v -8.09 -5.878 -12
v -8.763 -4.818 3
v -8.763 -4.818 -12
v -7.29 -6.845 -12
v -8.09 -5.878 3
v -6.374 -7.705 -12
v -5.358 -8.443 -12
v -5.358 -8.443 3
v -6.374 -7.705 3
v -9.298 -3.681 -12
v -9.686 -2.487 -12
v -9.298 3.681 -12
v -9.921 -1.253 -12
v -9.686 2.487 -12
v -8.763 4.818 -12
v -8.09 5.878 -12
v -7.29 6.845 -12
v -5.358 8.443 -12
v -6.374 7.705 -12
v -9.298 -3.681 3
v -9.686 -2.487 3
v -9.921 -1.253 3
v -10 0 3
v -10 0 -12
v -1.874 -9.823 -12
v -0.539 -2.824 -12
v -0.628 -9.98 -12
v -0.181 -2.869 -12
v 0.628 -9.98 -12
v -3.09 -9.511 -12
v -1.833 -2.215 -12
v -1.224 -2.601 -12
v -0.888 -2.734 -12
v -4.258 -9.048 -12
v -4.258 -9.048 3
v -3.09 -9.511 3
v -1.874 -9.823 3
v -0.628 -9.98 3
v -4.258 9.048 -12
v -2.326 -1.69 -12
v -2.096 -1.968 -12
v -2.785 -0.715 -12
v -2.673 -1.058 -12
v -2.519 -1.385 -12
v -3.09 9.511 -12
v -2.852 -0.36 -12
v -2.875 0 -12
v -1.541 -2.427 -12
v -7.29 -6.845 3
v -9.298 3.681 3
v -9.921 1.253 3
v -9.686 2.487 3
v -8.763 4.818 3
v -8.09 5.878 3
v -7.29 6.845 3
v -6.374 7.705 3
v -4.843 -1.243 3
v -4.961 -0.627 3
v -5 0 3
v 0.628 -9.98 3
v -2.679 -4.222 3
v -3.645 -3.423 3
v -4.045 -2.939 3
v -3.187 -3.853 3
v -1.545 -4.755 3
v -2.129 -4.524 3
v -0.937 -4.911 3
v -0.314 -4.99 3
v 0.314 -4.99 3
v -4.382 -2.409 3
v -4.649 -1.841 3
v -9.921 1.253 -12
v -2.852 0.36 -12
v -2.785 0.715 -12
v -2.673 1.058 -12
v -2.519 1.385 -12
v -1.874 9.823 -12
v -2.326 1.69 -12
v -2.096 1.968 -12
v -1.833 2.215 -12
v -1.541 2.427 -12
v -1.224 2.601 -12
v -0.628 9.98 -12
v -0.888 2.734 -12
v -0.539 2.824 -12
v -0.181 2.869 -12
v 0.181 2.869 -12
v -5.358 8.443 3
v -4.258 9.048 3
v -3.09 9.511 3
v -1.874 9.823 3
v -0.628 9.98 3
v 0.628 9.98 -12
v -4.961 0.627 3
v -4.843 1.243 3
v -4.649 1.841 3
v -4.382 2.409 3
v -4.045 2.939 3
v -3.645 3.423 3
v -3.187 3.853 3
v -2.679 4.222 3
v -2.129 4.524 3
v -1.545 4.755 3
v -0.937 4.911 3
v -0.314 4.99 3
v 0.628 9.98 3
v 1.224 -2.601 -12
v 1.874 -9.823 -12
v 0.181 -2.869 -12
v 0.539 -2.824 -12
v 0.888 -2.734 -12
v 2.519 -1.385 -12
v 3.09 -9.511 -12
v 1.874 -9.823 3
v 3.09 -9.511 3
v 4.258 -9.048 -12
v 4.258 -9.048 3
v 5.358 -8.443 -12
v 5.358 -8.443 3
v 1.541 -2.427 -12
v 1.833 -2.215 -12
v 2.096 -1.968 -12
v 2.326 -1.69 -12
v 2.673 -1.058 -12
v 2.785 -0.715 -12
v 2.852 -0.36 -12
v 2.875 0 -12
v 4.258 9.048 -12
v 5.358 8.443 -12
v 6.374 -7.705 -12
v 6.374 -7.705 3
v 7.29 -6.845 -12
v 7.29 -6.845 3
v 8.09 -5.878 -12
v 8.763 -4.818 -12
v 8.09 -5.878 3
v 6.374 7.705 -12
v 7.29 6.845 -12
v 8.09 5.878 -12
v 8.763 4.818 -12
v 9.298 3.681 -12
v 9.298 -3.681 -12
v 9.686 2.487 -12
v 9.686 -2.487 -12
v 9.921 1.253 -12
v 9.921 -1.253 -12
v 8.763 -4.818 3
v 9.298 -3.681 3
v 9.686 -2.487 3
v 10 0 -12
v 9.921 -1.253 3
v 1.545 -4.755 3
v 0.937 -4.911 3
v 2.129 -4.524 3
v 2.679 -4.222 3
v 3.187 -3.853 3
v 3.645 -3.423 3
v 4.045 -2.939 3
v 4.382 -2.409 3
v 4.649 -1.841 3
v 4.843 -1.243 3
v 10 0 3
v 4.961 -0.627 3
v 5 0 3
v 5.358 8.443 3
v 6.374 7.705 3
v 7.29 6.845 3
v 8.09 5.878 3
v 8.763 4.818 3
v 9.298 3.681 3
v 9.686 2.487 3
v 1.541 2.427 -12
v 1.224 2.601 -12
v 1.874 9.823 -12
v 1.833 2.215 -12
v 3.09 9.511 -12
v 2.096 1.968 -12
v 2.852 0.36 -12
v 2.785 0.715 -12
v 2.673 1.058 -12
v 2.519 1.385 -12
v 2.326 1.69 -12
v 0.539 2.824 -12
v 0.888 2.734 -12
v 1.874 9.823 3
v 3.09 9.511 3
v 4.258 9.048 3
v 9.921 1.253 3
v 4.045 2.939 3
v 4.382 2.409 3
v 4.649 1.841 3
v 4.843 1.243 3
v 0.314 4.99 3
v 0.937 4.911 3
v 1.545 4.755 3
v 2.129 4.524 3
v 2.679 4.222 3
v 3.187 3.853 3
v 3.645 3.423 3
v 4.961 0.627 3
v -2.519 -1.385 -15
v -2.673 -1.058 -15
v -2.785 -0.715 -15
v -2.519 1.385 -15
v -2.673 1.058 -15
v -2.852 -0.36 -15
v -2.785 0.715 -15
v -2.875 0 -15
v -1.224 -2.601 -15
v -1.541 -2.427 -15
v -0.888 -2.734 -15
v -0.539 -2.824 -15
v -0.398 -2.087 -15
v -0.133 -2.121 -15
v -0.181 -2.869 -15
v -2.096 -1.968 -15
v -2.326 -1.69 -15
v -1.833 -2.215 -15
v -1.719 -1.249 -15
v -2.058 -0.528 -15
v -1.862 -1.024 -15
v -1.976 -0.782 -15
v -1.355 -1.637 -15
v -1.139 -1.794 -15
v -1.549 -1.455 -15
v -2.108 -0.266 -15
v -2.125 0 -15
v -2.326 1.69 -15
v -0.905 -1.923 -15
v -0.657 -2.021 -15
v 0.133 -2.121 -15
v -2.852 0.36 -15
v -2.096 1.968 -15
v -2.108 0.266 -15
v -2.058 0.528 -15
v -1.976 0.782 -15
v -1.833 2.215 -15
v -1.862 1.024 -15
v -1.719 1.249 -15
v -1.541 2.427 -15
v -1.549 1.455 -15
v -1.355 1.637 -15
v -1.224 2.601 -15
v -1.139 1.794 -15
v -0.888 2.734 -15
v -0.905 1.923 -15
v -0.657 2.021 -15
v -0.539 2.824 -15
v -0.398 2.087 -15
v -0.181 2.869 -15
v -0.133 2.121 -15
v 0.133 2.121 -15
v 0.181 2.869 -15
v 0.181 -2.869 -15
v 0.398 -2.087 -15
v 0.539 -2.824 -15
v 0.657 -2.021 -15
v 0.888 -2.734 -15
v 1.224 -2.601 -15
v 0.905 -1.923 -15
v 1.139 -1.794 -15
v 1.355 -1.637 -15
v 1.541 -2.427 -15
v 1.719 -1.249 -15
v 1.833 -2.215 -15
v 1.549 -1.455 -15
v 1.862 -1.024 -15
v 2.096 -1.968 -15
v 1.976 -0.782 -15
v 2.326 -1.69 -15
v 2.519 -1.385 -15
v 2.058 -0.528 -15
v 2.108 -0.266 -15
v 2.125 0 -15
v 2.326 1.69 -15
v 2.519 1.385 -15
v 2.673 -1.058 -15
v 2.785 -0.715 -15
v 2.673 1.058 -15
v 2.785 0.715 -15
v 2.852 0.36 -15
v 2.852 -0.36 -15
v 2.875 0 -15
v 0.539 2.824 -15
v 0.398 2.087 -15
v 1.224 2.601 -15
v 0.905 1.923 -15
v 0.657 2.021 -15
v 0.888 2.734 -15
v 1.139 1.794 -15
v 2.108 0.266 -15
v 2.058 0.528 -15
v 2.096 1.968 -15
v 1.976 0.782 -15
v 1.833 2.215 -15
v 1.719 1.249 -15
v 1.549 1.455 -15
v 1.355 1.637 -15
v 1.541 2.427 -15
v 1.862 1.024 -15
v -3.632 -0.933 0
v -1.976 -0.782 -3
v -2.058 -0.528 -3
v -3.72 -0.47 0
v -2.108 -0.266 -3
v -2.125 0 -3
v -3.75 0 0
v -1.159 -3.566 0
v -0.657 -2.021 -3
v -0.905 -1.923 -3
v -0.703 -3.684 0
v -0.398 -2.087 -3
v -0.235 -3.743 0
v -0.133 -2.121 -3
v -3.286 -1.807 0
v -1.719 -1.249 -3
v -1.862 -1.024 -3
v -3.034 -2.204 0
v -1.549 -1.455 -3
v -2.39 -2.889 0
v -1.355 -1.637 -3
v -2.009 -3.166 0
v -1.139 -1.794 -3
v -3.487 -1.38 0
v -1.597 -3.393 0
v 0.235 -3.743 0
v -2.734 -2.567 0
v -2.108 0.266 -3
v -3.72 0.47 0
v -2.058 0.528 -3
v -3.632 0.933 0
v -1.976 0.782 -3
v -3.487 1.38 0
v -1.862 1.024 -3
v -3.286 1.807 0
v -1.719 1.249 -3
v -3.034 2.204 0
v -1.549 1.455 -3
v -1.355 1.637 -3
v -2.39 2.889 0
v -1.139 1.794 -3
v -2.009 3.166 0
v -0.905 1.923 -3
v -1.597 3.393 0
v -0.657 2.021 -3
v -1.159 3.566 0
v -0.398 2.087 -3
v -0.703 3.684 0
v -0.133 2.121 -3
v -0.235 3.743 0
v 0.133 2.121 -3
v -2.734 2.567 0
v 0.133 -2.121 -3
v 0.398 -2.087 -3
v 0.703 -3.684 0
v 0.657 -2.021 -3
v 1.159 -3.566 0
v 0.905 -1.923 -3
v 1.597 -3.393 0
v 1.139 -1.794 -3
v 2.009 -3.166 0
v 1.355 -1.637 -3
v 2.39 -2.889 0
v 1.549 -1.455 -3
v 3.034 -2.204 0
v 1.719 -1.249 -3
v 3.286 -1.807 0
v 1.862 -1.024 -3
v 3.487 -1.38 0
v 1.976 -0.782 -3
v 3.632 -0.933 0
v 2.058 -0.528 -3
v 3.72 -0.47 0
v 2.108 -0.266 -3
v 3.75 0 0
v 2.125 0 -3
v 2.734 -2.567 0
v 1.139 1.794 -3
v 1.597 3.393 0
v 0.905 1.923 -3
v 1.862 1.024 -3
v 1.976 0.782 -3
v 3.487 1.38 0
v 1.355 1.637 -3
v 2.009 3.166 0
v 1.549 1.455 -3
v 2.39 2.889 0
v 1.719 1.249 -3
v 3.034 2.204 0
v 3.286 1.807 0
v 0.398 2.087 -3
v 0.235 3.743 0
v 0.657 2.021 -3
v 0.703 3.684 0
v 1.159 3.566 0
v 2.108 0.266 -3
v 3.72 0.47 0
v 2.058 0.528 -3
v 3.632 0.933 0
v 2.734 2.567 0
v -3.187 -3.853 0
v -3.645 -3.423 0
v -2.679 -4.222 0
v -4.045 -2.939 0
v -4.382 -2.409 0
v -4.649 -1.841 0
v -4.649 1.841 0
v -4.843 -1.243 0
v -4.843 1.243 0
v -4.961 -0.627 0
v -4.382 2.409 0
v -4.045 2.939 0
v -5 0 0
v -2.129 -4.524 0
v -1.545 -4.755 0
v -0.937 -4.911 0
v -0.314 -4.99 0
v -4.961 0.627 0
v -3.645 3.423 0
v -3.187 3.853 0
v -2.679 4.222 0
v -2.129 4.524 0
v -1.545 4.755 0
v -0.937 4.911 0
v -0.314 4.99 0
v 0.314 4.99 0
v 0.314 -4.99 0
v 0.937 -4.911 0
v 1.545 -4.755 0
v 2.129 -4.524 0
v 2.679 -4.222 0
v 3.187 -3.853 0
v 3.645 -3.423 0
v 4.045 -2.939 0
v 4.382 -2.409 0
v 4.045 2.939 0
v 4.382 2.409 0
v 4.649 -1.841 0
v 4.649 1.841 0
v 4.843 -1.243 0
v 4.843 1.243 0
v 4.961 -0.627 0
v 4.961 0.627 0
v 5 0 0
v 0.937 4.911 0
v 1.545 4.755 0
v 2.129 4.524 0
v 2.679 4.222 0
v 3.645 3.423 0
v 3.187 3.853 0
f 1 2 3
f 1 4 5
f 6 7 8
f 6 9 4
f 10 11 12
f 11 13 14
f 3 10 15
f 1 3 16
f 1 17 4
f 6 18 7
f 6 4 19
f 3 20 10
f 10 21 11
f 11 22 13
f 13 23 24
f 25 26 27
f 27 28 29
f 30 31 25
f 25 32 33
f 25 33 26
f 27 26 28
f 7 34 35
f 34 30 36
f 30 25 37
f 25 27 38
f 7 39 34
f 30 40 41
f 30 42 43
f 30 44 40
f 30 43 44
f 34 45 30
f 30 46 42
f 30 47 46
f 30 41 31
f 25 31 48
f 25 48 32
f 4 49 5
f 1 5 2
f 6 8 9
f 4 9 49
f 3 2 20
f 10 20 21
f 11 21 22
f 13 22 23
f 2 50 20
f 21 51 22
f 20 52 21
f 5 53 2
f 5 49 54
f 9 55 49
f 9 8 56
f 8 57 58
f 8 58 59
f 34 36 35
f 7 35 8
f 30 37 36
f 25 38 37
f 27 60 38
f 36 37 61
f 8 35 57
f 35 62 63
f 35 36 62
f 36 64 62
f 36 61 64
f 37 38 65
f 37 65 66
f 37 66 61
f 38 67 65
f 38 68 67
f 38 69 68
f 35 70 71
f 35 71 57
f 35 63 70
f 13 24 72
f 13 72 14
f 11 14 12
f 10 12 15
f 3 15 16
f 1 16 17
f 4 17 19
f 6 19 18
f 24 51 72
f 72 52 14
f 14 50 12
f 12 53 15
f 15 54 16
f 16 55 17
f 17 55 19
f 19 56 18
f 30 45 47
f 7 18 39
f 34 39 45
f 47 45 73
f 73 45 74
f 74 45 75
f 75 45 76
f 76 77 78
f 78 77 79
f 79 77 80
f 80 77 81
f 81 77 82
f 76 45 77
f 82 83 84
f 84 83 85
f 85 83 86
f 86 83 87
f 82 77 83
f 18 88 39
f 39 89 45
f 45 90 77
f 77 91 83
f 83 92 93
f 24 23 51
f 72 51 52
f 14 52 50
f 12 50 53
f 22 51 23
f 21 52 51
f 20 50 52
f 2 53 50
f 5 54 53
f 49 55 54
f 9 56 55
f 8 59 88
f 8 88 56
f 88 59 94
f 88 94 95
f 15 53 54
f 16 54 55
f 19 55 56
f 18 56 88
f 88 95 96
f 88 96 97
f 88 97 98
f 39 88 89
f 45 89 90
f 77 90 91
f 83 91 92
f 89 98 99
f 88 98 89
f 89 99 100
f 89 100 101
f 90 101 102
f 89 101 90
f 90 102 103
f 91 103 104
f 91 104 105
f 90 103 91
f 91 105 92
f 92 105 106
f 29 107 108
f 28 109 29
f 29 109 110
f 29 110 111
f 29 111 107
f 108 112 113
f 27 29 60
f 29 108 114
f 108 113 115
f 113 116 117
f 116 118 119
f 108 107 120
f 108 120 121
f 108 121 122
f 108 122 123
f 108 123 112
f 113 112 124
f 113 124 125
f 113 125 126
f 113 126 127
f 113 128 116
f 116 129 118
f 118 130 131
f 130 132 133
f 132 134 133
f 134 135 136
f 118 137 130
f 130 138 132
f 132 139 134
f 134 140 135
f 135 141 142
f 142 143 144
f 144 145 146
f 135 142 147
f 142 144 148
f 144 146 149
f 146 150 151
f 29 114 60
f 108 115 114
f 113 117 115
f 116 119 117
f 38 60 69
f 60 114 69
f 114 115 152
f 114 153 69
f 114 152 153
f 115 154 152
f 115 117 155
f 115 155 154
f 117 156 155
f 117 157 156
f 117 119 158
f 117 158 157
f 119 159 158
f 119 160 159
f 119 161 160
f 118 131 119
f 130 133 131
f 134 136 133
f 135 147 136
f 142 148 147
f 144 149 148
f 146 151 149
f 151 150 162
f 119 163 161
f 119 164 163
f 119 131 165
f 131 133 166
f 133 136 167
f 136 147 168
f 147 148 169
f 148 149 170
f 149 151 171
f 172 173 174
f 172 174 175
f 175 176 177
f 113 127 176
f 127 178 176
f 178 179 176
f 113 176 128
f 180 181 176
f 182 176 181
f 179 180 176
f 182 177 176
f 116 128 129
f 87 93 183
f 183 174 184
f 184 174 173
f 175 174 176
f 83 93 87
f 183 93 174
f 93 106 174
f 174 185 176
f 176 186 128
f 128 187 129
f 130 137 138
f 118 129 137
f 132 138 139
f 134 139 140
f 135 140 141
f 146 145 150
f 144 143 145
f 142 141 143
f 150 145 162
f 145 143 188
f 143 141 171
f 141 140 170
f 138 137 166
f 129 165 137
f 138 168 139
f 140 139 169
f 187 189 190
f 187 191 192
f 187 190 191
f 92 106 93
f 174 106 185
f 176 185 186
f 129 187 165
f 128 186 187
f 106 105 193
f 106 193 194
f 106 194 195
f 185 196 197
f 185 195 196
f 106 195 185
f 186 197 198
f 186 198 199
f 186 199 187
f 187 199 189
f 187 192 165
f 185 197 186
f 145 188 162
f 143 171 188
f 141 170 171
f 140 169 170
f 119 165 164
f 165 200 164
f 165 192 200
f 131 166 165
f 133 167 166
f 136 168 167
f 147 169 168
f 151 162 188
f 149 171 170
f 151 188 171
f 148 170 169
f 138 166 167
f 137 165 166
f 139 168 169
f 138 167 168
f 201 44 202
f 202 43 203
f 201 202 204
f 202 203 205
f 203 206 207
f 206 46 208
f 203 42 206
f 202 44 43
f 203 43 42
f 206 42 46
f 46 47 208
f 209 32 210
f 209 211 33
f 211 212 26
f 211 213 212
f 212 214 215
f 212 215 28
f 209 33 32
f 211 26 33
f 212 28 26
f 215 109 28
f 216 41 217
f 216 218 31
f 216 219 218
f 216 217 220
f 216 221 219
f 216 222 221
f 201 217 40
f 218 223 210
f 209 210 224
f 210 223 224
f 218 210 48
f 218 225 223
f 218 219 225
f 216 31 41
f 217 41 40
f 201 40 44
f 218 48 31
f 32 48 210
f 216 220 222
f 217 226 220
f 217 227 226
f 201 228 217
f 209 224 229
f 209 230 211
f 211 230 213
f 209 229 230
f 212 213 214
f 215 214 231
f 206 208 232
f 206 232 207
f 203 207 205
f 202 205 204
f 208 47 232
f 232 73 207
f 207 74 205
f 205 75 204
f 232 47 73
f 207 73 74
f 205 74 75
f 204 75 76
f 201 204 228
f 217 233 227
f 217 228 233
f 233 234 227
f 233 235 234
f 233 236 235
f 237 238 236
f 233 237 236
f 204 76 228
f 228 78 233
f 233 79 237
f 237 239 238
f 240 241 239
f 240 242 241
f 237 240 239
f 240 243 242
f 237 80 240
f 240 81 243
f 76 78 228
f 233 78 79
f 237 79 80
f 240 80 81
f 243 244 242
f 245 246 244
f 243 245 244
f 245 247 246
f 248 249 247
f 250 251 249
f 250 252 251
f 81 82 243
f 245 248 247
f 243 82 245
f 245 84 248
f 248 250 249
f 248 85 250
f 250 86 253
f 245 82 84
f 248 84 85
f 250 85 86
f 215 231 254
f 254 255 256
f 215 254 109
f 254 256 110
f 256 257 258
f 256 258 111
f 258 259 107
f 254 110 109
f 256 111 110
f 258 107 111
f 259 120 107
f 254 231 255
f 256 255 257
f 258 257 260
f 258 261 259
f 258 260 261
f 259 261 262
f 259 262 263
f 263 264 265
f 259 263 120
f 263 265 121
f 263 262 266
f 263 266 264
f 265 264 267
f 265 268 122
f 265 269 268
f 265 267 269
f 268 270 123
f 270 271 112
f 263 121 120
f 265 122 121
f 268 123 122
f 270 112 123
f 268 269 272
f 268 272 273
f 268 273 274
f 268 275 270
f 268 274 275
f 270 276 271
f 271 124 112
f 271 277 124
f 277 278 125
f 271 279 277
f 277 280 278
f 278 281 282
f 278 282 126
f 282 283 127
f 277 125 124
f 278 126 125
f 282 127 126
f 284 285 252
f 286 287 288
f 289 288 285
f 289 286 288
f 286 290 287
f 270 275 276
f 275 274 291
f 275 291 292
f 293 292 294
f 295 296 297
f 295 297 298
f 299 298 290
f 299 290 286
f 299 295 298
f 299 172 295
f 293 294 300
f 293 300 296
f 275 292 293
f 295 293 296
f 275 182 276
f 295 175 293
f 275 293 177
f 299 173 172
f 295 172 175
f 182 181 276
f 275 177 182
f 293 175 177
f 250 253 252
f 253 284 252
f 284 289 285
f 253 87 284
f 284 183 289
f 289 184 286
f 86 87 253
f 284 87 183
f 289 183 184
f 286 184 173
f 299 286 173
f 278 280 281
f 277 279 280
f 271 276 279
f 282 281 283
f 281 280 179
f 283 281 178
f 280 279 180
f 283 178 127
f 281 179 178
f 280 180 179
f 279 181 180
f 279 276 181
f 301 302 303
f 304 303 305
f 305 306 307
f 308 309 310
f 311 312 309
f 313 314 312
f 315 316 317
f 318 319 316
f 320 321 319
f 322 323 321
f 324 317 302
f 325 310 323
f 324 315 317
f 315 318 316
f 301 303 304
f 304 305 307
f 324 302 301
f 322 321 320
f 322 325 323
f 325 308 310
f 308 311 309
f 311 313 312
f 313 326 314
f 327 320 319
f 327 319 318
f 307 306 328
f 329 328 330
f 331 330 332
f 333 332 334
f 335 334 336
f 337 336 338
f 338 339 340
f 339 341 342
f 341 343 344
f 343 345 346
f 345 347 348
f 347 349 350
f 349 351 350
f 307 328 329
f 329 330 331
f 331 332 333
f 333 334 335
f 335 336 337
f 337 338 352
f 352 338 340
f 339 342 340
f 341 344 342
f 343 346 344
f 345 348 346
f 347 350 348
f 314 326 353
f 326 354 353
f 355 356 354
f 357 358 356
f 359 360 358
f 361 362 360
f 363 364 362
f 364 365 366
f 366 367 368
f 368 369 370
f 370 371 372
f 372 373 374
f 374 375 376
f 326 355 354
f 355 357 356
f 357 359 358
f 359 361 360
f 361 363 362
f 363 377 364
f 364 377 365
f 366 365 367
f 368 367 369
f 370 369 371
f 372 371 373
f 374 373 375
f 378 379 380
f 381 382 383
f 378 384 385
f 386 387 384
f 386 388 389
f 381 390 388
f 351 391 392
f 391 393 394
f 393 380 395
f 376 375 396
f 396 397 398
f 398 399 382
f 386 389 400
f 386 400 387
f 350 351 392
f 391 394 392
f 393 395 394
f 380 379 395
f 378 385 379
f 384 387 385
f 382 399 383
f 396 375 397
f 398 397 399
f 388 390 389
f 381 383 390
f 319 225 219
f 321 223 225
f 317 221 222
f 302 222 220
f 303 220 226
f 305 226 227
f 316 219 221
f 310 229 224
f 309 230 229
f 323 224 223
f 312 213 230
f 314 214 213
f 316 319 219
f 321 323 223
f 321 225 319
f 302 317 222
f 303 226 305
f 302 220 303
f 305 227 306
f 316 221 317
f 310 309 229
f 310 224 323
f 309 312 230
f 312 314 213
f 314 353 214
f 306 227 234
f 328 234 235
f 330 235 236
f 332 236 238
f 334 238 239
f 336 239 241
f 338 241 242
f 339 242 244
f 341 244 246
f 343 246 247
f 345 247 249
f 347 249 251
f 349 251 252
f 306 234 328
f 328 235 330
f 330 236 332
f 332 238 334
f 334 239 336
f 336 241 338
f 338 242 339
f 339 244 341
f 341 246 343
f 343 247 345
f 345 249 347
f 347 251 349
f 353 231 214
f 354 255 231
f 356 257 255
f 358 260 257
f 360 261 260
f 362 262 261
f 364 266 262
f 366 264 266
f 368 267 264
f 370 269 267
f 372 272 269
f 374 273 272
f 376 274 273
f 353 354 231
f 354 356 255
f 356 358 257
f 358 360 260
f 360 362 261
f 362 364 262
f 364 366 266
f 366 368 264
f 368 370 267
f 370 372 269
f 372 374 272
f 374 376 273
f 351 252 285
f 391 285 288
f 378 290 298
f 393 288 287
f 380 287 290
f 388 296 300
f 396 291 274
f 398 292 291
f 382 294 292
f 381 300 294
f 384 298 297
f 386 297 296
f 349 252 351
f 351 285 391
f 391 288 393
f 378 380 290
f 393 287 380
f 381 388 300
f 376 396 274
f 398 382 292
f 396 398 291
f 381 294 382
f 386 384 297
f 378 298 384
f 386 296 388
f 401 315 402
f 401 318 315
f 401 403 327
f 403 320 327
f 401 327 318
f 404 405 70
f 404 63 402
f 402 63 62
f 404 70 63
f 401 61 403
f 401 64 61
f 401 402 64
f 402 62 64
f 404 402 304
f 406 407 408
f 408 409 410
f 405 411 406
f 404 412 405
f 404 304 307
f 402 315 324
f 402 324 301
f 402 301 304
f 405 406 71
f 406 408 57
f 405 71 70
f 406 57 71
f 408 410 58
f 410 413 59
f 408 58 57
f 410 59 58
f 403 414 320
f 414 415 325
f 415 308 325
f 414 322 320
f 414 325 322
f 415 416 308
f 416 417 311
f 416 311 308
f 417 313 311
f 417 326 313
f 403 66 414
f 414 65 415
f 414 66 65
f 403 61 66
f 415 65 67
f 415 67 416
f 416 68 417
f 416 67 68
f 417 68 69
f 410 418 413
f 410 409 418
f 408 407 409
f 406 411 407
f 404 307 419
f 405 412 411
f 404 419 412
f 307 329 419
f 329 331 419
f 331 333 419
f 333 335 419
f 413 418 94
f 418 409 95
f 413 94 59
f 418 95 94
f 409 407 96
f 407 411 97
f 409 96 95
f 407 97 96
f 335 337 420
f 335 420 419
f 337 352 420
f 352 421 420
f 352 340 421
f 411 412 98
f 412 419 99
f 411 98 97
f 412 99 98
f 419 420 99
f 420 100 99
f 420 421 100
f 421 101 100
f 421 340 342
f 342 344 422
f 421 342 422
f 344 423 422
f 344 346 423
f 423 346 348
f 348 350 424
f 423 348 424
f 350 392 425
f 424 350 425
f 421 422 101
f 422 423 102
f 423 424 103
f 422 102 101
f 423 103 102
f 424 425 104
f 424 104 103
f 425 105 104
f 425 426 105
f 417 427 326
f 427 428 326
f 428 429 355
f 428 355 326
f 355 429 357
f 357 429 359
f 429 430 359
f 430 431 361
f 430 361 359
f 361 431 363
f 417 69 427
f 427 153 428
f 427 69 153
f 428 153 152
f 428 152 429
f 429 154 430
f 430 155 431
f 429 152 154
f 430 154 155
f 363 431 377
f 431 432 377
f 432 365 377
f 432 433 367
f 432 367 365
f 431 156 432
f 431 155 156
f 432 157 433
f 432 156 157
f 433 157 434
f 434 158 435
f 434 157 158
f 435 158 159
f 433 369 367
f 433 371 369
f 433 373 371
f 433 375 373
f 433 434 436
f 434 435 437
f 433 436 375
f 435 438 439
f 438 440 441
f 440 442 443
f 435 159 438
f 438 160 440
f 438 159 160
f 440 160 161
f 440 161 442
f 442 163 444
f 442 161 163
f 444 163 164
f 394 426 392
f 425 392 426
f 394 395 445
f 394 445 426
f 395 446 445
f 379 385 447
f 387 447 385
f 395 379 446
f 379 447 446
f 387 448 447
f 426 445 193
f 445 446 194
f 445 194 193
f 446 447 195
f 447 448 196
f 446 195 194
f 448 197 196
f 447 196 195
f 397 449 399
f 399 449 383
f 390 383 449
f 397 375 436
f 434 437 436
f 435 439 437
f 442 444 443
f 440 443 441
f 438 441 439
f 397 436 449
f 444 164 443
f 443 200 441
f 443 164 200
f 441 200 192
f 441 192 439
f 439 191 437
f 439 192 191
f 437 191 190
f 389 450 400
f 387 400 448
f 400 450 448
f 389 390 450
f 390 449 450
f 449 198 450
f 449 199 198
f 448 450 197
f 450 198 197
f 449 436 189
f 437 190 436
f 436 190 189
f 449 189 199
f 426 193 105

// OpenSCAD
$fn = 50;


difference() {
	union() {
		translate(v = [0, 0, -12.0000000000]) {
			cylinder(h = 15, r = 10.0000000000);
		}
		#translate(v = [0, 0, -15.0000000000]) {
			cylinder(h = 15, r = 2.8750000000);
		}
	}
	union() {
		translate(v = [0, 0, 0]) {
			rotate(a = [0, 0, 0]) {
				difference() {
					union() {
						translate(v = [0, 0, -15.0000000000]) {
							cylinder(h = 15, r = 2.0000000000);
						}
						translate(v = [0, 0, -3]) {
							cylinder(h = 3, r1 = 2.1250000000, r2 = 3.7500000000);
						}
						translate(v = [0, 0, -15.0000000000]) {
							cylinder(h = 15, r = 2.1250000000);
						}
						translate(v = [0, 0, -15.0000000000]) {
							cylinder(h = 15, r = 2.0000000000);
						}
					}
					union();
				}
			}
		}
		#cylinder(h = 3, r = 5.0000000000);
	}
}
